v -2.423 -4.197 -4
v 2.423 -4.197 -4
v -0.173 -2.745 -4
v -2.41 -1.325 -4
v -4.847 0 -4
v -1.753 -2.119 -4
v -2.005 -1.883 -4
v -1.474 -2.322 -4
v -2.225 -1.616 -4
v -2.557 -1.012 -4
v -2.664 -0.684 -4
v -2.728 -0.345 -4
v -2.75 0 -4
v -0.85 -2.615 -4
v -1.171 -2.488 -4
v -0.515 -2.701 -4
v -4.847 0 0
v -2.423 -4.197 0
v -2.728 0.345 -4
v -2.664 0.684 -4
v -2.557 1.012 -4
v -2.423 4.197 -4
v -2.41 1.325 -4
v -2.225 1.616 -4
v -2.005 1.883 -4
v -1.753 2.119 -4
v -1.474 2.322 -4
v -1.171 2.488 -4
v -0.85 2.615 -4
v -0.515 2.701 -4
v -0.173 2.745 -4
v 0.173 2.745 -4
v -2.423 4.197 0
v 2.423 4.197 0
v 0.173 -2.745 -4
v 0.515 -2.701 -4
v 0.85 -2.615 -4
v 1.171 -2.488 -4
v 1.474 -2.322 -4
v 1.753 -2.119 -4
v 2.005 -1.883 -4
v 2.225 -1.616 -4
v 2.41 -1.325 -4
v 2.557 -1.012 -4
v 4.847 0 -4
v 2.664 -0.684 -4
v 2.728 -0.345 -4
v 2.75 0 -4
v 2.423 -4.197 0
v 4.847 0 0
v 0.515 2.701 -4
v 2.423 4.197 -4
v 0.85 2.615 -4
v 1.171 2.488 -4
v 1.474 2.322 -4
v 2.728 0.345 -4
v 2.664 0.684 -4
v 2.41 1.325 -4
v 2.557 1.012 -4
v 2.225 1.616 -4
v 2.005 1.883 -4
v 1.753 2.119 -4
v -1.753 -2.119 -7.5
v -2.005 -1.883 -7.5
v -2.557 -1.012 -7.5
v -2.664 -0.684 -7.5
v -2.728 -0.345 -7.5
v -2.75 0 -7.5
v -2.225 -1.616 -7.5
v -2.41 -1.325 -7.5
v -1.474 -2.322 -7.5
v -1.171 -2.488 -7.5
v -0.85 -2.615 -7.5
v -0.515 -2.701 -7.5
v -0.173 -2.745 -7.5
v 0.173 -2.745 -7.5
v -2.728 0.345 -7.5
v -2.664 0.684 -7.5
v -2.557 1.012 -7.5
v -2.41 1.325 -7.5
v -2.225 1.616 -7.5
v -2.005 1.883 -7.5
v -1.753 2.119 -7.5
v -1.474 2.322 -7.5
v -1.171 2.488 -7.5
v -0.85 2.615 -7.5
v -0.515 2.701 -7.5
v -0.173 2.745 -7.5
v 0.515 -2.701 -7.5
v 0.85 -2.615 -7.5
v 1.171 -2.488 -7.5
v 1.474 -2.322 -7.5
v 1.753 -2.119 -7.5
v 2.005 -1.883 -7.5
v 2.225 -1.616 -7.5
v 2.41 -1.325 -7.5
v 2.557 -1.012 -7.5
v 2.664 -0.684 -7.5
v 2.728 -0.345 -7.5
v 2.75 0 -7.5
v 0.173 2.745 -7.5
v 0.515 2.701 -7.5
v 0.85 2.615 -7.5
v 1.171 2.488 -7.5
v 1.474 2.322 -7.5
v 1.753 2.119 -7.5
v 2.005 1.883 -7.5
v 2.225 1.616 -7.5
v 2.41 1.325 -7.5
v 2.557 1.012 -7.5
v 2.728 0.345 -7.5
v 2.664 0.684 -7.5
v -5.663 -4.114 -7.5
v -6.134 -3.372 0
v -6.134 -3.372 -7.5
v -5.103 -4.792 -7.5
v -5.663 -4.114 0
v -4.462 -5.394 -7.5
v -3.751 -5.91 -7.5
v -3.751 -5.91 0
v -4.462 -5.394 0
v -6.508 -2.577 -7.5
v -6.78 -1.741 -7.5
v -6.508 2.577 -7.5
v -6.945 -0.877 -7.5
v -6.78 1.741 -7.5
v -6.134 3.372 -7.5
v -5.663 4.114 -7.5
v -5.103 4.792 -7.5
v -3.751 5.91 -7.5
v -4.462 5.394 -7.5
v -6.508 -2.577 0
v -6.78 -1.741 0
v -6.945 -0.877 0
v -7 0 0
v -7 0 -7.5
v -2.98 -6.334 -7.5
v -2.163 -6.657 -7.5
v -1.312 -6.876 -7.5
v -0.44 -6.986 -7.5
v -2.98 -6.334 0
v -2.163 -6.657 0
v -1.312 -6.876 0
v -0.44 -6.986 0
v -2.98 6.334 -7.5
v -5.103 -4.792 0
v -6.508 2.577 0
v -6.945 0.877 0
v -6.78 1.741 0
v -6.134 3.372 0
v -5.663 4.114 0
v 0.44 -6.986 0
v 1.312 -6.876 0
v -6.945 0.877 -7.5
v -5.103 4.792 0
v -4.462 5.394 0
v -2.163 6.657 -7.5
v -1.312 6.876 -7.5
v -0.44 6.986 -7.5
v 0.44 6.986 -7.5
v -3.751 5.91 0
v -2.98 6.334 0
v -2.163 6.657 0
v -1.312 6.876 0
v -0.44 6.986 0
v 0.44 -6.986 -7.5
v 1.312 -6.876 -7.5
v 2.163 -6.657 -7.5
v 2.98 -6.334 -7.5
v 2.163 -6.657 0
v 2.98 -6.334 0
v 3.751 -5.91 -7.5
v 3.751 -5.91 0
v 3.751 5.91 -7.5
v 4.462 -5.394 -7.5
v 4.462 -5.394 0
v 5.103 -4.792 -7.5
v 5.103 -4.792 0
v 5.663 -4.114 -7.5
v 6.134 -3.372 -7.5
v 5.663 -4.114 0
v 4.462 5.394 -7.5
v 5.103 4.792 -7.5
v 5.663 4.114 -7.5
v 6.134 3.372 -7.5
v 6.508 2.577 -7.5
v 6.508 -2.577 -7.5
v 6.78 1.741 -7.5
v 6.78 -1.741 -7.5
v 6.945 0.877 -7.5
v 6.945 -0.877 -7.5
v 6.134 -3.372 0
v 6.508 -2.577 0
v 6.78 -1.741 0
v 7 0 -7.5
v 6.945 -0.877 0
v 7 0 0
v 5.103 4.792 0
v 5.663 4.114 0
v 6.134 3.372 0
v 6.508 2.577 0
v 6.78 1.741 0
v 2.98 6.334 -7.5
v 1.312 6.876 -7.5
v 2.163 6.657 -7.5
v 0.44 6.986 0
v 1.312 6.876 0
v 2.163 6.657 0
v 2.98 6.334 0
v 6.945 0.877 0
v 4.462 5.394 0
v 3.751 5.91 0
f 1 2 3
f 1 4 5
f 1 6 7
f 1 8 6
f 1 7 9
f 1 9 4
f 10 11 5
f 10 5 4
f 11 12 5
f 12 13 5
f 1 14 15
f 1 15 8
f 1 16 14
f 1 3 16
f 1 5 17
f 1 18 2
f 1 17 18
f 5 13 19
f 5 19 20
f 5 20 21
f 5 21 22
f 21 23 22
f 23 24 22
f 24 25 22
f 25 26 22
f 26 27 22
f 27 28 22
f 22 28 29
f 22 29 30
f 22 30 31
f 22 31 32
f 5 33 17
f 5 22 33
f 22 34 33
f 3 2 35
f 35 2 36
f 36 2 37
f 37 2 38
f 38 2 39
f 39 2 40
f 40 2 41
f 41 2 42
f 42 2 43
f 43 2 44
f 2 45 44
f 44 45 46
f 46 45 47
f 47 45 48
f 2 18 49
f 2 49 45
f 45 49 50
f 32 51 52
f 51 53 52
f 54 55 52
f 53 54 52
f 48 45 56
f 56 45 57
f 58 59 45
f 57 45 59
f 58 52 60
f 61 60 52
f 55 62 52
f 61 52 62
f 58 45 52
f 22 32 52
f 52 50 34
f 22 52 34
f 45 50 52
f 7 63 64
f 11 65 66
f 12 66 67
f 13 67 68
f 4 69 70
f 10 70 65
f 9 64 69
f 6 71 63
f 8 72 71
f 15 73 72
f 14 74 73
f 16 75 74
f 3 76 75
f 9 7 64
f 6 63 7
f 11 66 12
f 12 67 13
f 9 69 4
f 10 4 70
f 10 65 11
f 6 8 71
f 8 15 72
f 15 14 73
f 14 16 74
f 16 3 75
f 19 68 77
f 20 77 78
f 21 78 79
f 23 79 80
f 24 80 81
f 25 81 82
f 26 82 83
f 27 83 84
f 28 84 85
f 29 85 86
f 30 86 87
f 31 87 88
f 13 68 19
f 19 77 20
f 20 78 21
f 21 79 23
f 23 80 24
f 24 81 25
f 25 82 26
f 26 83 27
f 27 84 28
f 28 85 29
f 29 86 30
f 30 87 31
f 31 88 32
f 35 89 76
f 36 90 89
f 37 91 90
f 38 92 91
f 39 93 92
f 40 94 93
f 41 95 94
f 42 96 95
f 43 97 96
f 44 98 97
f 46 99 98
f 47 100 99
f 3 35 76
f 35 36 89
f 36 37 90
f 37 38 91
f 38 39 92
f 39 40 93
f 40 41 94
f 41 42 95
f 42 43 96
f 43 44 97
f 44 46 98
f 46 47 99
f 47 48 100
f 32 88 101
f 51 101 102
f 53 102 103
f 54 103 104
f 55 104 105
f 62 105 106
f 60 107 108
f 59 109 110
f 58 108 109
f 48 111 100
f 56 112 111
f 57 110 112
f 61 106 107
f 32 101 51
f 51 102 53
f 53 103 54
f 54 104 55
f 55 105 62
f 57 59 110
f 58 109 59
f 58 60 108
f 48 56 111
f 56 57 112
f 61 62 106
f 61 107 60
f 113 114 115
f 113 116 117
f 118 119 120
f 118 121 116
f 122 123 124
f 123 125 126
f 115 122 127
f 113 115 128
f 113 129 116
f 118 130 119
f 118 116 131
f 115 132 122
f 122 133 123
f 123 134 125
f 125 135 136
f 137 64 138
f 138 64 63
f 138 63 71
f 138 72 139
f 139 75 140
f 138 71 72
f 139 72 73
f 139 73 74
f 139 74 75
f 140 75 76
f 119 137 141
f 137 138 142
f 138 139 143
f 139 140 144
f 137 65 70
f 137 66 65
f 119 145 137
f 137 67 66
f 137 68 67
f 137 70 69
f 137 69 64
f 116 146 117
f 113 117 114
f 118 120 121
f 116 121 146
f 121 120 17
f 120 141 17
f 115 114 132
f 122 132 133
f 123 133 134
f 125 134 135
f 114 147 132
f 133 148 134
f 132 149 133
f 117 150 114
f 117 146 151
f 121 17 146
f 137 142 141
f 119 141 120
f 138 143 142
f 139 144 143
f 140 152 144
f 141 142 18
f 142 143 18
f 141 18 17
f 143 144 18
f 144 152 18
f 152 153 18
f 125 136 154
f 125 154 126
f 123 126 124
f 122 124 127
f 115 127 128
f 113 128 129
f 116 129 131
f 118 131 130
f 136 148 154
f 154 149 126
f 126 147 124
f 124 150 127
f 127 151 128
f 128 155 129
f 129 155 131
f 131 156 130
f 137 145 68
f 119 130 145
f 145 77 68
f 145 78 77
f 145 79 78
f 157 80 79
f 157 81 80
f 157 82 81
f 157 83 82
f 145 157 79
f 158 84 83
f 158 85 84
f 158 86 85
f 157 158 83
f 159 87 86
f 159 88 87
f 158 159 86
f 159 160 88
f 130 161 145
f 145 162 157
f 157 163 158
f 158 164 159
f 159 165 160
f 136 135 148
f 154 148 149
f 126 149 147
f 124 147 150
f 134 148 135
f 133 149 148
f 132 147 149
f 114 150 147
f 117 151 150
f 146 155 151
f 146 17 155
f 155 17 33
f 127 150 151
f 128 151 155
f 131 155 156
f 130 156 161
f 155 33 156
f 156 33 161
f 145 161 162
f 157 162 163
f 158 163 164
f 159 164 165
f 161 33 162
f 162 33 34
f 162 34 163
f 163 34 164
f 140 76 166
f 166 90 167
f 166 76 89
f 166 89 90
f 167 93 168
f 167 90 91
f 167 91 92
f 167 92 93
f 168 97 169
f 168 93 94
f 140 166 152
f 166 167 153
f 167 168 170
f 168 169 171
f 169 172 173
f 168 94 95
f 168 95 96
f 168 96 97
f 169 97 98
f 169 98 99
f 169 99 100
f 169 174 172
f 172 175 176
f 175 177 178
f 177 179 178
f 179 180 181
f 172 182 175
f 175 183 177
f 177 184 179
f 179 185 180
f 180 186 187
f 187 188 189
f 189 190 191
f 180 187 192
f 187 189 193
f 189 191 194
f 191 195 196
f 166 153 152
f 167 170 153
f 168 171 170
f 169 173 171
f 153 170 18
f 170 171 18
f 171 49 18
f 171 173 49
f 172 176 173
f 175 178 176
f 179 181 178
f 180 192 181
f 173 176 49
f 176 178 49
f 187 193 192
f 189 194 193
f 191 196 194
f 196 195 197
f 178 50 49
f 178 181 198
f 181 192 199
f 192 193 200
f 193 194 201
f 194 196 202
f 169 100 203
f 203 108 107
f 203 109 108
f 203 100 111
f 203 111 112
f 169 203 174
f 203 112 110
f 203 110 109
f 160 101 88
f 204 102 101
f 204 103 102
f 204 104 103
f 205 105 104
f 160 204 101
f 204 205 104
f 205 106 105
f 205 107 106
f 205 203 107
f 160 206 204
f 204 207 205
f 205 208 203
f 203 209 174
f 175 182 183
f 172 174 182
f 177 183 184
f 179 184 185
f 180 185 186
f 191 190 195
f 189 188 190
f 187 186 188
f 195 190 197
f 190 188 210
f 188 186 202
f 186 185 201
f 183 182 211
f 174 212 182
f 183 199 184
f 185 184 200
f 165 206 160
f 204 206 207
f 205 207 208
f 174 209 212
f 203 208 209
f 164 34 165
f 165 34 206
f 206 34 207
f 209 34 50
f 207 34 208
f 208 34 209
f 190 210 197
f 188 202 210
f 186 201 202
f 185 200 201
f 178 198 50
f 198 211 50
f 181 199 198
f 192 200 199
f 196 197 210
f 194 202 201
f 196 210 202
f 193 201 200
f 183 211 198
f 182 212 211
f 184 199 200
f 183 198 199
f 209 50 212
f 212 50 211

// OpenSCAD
$fn = 50;

difference() {
	union() {
		translate(v = [0, 0, -7.5]) {
			cylinder(h = 7.5, r = 7.0);
		}
	}
	union() {
		translate(v = [0, 0, 0]) {
			rotate(a = [0, 0, 0]) {
				difference() {
					union() {
						translate(v = [0, 0, -4]) {
							linear_extrude(height = 4) {
								polygon(points = [[4.8468, 0.0], [2.4234000000000004, 4.197451927062417], [-2.423399999999999, 4.197451927062417], [-4.8468, 5.935618106107392e-16], [-2.423400000000002, -4.197451927062416], [2.423399999999997, -4.197451927062419]]);
							}
						}
					}
					union();
				}
			}
		}
		#translate(v = [0, 0, -100.0]) {
			cylinder(h = 200, r = 2.75);
		}
	}
}
